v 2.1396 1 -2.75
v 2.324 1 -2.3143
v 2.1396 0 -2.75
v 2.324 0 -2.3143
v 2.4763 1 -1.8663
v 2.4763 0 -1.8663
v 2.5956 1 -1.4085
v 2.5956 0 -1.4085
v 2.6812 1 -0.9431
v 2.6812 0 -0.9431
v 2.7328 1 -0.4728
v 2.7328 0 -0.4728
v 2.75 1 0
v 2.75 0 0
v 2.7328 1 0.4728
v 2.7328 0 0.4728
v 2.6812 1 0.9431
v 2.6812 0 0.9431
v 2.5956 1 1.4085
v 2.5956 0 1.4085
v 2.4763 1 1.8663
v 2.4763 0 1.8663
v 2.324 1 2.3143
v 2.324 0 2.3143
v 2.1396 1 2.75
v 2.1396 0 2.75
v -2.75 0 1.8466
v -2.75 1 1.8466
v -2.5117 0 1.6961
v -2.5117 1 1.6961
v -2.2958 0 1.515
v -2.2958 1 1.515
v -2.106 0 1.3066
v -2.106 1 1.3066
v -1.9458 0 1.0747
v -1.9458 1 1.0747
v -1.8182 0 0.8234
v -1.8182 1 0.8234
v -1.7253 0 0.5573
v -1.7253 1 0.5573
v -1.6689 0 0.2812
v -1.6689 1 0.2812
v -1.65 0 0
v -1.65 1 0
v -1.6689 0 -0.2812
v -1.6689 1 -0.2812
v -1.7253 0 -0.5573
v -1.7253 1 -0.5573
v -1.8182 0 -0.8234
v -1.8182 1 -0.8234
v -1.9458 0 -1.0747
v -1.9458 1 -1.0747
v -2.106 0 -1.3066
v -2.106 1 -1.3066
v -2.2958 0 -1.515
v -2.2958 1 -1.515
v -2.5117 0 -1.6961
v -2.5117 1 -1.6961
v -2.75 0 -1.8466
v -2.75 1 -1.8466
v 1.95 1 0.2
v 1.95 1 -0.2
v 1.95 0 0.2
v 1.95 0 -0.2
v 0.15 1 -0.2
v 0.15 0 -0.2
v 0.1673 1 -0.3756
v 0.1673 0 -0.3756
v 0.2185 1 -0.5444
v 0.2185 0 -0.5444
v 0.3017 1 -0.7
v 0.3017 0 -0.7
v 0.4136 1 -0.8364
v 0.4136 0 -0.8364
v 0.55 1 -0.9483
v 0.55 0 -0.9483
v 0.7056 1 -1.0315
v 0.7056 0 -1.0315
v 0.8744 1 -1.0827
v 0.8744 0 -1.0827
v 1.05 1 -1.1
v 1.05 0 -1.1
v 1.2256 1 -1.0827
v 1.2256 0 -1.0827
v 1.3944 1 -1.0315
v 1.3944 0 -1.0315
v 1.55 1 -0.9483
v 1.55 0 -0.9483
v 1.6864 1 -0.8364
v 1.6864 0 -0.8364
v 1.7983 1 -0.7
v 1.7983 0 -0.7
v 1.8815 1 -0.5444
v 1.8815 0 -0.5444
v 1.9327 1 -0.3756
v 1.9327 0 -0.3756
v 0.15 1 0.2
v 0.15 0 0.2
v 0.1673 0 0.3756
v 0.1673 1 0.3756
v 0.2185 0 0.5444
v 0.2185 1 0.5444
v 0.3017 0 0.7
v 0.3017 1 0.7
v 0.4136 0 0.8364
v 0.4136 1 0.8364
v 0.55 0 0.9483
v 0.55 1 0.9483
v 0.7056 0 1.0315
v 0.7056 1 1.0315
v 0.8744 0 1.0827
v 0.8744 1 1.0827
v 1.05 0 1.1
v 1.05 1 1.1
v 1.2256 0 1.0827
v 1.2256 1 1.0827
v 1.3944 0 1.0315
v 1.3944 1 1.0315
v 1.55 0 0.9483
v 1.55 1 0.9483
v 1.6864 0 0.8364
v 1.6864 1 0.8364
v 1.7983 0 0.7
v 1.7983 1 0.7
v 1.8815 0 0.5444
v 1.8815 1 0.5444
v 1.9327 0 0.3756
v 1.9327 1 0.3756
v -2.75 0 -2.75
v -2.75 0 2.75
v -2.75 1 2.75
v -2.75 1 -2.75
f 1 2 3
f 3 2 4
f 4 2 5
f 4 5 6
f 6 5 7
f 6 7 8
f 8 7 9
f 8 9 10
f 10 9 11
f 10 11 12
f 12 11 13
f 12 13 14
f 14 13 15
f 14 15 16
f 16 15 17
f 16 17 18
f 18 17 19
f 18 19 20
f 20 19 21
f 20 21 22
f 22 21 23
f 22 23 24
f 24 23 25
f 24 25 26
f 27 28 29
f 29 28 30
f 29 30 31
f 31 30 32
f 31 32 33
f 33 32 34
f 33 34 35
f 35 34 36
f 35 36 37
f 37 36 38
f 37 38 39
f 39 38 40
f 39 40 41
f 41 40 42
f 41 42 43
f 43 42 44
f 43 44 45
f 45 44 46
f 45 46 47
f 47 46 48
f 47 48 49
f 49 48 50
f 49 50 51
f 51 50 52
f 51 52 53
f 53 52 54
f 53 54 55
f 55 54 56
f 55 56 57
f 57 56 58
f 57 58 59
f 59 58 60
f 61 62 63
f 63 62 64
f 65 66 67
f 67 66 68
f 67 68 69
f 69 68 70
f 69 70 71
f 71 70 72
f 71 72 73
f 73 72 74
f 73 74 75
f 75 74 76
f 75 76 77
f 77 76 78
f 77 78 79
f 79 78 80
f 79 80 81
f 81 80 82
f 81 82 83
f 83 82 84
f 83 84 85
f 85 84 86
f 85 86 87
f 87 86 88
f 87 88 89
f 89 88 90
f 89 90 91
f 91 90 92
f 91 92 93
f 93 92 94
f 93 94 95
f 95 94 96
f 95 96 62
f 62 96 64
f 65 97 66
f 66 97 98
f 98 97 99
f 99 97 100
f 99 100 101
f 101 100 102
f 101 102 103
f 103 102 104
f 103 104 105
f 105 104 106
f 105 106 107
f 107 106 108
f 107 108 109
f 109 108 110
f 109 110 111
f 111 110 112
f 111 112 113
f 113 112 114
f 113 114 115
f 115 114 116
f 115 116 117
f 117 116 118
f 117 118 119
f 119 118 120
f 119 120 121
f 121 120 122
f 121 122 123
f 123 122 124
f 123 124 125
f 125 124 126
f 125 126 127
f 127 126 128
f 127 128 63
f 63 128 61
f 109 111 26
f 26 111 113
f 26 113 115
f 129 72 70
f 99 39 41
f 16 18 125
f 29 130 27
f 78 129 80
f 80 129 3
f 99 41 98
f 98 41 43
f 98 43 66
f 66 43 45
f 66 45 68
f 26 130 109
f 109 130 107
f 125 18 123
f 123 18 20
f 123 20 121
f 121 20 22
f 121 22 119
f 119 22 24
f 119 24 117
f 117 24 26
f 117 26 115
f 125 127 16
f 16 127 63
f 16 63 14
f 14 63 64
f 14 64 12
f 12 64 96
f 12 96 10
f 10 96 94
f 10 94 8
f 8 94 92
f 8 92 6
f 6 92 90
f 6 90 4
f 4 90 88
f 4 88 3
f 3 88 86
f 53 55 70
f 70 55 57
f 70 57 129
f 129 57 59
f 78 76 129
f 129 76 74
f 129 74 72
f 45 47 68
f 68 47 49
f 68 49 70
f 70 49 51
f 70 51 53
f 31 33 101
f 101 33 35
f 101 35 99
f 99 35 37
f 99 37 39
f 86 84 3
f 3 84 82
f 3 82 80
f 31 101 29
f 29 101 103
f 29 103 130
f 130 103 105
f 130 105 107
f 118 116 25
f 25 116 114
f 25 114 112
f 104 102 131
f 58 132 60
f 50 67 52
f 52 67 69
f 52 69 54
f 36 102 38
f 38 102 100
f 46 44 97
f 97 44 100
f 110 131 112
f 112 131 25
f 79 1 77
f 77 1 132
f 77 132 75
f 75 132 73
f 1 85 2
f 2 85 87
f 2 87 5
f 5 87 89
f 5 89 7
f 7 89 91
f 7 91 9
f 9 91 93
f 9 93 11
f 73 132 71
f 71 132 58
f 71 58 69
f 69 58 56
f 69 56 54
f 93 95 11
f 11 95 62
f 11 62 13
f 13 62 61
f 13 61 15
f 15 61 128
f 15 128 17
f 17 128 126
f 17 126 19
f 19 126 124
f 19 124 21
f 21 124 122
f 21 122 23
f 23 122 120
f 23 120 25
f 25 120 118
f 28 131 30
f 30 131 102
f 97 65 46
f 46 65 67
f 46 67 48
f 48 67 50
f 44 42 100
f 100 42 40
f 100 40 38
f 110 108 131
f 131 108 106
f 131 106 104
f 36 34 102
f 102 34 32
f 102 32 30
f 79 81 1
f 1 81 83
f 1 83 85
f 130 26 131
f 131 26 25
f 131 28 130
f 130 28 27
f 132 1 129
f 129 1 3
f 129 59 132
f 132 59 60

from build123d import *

# Parameters (mm, degrees)
SKETCH2_W           = 5.5
SKETCH2_H           = 5.5
BOSS_EXTRUDE1_DEPTH = 1
CUT_EXTRUDE1_DEPTH  = 2
CUT_EXTRUDE2_DEPTH  = 2
CUT_EXTRUDE3_DEPTH  = 1


with BuildPart() as part:
    # Sketch2 → Boss-Extrude1 (new body)
    with BuildSketch(Plane(origin=(0, 0, 0), x_dir=(1, 0, 0), z_dir=(0, 1, 0))):
        Rectangle(SKETCH2_W, SKETCH2_H)
    extrude(amount=BOSS_EXTRUDE1_DEPTH)

    # Sketch3 → Cut-Extrude1 (cut, through all)
    with BuildSketch(Plane(origin=(0, 1, 0), x_dir=(1, 0, 0), z_dir=(0, 1, 0))):
        with BuildLine():
            Line((0.15, -0.2), (0.15, 0.2))
            ThreePointArc((0.15, 0.2), (1.05, 1.1), (1.95, 0.2))
            Line((1.95, 0.2), (1.95, -0.2))
            ThreePointArc((1.95, -0.2), (1.05, -1.1), (0.15, -0.2))
        make_face()
    extrude(amount=-CUT_EXTRUDE1_DEPTH, mode=Mode.SUBTRACT)

    # Sketch4 → Cut-Extrude2 (cut, through all)
    with BuildSketch(Plane(origin=(0, 1, 0), x_dir=(1, 0, 0), z_dir=(0, 1, 0))):
        with BuildLine():
            Line((-2.75, 1.846618531), (-2.75, -1.846618531))
            ThreePointArc((-2.75, -1.846618531), (-1.65, 0), (-2.75, 1.846618531))
        make_face()
    extrude(amount=-CUT_EXTRUDE2_DEPTH, mode=Mode.SUBTRACT)

    # Sketch5 → Cut-Extrude3 (cut)
    with BuildSketch(Plane(origin=(0, 1, 0), x_dir=(1, 0, 0), z_dir=(0, 1, 0))):
        with BuildLine():
            Line((3.85, -2.75), (3.85, 2.75))
            Line((3.85, 2.75), (2.139609495, 2.75))
            ThreePointArc((2.139609495, 2.75), (2.75, 0), (2.139609495, -2.75))
            Line((2.139609495, -2.75), (3.85, -2.75))
        make_face()
    extrude(amount=-CUT_EXTRUDE3_DEPTH, mode=Mode.SUBTRACT)


solid = part.part
